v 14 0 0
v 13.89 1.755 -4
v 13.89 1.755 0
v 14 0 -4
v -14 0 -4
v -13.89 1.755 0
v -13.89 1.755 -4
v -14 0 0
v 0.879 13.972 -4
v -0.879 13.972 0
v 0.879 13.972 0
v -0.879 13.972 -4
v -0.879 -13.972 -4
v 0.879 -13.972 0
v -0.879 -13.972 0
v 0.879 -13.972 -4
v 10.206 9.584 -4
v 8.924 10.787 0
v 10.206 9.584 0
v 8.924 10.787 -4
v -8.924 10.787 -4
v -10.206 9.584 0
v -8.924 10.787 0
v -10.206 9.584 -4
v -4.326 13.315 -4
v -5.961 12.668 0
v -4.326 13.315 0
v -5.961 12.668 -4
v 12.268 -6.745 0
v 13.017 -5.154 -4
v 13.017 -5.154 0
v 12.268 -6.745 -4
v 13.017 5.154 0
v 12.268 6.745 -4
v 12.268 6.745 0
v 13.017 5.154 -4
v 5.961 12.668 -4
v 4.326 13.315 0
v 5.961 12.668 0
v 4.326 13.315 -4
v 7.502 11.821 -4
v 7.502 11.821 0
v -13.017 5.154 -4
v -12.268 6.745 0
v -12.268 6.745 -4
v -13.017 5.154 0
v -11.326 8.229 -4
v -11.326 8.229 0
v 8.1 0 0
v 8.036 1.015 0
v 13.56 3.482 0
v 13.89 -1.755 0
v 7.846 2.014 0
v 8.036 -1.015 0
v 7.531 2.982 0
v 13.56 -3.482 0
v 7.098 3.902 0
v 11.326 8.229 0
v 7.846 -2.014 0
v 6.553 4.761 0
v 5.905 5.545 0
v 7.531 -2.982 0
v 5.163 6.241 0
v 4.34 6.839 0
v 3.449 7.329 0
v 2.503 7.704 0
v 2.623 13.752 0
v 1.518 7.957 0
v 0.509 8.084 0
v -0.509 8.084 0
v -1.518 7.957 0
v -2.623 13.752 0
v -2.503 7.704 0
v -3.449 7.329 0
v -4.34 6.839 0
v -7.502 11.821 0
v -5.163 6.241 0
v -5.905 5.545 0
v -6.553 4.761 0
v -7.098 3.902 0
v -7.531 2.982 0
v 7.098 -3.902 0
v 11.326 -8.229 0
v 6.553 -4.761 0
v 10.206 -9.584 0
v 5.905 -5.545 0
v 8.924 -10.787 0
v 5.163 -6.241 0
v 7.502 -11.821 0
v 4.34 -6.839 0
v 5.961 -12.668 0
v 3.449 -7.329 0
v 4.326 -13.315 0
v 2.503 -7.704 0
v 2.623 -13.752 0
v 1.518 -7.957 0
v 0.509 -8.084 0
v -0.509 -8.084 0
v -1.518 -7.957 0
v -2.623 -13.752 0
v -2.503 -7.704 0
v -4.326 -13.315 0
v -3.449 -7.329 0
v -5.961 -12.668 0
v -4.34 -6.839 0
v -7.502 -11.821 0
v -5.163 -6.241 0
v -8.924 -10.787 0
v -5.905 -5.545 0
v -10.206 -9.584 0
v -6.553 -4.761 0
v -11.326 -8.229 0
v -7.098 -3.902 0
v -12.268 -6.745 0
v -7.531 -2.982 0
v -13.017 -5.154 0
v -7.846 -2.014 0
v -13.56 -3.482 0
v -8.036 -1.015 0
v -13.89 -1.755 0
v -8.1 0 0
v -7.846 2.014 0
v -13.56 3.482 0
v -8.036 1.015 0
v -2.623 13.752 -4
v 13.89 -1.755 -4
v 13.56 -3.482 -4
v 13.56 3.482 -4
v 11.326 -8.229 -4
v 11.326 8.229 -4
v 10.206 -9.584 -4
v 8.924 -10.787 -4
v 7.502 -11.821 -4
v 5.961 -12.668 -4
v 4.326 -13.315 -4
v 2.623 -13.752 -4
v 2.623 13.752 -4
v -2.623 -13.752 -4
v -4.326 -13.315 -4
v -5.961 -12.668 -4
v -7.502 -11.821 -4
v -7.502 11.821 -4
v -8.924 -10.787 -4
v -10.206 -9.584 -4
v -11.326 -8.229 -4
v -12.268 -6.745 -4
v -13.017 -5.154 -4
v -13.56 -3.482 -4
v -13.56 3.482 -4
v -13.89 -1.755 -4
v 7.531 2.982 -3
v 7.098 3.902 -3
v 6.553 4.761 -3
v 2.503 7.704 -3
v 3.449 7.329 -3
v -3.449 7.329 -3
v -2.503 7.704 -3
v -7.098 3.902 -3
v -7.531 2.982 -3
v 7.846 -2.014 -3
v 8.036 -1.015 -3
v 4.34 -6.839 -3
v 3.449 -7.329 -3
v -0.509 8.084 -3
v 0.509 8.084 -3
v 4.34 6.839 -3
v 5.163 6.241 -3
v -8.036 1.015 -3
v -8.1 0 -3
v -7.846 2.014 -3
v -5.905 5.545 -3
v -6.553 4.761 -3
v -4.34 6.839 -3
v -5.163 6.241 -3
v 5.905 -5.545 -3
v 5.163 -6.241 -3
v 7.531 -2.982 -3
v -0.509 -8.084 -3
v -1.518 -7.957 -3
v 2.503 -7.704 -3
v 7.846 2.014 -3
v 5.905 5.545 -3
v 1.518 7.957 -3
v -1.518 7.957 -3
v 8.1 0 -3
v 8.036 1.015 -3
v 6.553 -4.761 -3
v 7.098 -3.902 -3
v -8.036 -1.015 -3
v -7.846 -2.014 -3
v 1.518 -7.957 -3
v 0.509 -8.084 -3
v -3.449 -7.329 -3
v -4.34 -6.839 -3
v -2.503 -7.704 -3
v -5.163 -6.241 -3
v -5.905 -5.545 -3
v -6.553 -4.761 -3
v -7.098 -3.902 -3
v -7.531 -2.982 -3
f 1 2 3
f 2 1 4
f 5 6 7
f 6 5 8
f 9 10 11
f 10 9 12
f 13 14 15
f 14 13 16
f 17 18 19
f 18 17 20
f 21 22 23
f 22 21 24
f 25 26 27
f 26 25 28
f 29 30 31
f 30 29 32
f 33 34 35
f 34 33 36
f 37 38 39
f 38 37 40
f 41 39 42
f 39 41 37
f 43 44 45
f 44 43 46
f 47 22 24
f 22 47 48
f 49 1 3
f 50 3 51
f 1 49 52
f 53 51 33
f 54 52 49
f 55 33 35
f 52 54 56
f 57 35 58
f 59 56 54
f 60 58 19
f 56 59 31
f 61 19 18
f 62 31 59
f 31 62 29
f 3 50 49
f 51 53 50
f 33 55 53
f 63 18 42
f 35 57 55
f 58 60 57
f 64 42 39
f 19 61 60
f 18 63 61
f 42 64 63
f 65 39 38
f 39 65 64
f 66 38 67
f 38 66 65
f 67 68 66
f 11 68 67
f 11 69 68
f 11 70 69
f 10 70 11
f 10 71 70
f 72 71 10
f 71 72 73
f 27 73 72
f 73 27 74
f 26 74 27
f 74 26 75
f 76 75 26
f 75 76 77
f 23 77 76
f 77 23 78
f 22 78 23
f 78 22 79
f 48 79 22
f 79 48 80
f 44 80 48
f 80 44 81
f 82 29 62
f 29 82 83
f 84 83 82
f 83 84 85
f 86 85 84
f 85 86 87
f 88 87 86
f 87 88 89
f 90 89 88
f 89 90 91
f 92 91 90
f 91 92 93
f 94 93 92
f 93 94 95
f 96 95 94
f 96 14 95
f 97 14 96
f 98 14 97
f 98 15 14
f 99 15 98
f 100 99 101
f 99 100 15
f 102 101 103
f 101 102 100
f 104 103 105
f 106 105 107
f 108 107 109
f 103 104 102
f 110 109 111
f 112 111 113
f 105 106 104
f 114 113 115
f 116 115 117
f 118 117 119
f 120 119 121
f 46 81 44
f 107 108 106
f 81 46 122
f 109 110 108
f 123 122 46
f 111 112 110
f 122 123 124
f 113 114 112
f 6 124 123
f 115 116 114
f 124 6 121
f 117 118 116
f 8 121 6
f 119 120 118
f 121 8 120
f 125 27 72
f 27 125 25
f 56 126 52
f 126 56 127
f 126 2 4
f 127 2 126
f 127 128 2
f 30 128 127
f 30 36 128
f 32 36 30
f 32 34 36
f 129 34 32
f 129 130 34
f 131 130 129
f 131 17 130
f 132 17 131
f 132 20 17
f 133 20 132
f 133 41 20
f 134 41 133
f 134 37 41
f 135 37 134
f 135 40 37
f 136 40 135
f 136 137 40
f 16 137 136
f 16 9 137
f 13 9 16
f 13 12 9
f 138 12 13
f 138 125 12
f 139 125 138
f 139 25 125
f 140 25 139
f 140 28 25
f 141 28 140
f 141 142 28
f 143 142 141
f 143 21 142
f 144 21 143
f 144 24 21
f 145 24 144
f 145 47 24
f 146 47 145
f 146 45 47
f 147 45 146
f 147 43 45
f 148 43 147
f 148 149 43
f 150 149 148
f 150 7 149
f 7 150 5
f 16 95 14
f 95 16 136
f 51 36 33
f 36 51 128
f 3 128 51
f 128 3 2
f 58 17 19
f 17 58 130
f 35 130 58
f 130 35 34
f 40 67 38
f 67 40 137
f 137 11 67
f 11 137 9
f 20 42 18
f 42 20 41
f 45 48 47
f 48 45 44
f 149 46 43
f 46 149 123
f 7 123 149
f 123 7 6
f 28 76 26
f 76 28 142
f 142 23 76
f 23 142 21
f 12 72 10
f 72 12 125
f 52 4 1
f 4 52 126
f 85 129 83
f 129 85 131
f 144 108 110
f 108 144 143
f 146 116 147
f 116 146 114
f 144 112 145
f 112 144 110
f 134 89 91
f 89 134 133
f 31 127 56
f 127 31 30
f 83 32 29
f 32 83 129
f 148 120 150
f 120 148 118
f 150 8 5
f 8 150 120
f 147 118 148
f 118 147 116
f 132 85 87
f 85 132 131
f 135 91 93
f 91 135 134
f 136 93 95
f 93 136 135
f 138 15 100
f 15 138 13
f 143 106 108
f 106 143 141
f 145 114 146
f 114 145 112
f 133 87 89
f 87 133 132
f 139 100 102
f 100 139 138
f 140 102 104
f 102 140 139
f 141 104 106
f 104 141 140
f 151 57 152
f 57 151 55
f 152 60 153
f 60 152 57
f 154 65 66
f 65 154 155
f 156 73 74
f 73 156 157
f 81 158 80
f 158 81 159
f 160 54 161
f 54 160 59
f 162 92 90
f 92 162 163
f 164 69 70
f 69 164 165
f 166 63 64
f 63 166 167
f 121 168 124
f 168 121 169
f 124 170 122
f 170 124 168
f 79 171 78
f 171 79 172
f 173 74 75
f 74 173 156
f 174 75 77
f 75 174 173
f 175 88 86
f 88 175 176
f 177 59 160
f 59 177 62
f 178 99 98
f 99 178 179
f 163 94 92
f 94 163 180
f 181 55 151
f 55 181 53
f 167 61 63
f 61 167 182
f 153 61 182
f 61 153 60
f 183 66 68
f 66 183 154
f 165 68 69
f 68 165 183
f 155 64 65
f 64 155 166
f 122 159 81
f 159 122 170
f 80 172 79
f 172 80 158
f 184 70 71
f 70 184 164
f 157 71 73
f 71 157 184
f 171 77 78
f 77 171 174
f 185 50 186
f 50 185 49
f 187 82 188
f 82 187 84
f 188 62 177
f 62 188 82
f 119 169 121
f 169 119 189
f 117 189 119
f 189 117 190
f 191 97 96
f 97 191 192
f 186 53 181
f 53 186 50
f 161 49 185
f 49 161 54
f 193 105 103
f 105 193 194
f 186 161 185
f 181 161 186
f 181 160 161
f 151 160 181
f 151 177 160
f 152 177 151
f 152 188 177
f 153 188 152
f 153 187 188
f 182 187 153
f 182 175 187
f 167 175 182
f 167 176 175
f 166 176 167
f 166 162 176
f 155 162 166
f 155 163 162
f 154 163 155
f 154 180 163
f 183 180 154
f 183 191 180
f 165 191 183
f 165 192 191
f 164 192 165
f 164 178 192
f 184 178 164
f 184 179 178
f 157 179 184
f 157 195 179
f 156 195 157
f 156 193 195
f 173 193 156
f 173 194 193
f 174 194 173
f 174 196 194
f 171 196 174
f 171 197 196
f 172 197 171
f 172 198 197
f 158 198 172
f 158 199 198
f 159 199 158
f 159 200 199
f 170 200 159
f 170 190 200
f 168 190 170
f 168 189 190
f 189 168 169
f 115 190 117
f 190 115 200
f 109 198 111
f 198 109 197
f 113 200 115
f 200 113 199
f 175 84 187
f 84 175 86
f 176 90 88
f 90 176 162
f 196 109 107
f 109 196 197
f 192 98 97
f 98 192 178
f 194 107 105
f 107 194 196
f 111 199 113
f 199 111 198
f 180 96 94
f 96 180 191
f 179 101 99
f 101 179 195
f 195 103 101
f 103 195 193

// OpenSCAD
$fn = 50;


difference() {
	union() {
		translate(v = [0, 0, -4.0000000000]) {
			cylinder(h = 4, r = 14.0000000000);
		}
	}
	union() {
		#translate(v = [0, 0, -3.0000000000]) {
			cylinder(h = 3, r = 8.1000000000);
		}
	}
}
